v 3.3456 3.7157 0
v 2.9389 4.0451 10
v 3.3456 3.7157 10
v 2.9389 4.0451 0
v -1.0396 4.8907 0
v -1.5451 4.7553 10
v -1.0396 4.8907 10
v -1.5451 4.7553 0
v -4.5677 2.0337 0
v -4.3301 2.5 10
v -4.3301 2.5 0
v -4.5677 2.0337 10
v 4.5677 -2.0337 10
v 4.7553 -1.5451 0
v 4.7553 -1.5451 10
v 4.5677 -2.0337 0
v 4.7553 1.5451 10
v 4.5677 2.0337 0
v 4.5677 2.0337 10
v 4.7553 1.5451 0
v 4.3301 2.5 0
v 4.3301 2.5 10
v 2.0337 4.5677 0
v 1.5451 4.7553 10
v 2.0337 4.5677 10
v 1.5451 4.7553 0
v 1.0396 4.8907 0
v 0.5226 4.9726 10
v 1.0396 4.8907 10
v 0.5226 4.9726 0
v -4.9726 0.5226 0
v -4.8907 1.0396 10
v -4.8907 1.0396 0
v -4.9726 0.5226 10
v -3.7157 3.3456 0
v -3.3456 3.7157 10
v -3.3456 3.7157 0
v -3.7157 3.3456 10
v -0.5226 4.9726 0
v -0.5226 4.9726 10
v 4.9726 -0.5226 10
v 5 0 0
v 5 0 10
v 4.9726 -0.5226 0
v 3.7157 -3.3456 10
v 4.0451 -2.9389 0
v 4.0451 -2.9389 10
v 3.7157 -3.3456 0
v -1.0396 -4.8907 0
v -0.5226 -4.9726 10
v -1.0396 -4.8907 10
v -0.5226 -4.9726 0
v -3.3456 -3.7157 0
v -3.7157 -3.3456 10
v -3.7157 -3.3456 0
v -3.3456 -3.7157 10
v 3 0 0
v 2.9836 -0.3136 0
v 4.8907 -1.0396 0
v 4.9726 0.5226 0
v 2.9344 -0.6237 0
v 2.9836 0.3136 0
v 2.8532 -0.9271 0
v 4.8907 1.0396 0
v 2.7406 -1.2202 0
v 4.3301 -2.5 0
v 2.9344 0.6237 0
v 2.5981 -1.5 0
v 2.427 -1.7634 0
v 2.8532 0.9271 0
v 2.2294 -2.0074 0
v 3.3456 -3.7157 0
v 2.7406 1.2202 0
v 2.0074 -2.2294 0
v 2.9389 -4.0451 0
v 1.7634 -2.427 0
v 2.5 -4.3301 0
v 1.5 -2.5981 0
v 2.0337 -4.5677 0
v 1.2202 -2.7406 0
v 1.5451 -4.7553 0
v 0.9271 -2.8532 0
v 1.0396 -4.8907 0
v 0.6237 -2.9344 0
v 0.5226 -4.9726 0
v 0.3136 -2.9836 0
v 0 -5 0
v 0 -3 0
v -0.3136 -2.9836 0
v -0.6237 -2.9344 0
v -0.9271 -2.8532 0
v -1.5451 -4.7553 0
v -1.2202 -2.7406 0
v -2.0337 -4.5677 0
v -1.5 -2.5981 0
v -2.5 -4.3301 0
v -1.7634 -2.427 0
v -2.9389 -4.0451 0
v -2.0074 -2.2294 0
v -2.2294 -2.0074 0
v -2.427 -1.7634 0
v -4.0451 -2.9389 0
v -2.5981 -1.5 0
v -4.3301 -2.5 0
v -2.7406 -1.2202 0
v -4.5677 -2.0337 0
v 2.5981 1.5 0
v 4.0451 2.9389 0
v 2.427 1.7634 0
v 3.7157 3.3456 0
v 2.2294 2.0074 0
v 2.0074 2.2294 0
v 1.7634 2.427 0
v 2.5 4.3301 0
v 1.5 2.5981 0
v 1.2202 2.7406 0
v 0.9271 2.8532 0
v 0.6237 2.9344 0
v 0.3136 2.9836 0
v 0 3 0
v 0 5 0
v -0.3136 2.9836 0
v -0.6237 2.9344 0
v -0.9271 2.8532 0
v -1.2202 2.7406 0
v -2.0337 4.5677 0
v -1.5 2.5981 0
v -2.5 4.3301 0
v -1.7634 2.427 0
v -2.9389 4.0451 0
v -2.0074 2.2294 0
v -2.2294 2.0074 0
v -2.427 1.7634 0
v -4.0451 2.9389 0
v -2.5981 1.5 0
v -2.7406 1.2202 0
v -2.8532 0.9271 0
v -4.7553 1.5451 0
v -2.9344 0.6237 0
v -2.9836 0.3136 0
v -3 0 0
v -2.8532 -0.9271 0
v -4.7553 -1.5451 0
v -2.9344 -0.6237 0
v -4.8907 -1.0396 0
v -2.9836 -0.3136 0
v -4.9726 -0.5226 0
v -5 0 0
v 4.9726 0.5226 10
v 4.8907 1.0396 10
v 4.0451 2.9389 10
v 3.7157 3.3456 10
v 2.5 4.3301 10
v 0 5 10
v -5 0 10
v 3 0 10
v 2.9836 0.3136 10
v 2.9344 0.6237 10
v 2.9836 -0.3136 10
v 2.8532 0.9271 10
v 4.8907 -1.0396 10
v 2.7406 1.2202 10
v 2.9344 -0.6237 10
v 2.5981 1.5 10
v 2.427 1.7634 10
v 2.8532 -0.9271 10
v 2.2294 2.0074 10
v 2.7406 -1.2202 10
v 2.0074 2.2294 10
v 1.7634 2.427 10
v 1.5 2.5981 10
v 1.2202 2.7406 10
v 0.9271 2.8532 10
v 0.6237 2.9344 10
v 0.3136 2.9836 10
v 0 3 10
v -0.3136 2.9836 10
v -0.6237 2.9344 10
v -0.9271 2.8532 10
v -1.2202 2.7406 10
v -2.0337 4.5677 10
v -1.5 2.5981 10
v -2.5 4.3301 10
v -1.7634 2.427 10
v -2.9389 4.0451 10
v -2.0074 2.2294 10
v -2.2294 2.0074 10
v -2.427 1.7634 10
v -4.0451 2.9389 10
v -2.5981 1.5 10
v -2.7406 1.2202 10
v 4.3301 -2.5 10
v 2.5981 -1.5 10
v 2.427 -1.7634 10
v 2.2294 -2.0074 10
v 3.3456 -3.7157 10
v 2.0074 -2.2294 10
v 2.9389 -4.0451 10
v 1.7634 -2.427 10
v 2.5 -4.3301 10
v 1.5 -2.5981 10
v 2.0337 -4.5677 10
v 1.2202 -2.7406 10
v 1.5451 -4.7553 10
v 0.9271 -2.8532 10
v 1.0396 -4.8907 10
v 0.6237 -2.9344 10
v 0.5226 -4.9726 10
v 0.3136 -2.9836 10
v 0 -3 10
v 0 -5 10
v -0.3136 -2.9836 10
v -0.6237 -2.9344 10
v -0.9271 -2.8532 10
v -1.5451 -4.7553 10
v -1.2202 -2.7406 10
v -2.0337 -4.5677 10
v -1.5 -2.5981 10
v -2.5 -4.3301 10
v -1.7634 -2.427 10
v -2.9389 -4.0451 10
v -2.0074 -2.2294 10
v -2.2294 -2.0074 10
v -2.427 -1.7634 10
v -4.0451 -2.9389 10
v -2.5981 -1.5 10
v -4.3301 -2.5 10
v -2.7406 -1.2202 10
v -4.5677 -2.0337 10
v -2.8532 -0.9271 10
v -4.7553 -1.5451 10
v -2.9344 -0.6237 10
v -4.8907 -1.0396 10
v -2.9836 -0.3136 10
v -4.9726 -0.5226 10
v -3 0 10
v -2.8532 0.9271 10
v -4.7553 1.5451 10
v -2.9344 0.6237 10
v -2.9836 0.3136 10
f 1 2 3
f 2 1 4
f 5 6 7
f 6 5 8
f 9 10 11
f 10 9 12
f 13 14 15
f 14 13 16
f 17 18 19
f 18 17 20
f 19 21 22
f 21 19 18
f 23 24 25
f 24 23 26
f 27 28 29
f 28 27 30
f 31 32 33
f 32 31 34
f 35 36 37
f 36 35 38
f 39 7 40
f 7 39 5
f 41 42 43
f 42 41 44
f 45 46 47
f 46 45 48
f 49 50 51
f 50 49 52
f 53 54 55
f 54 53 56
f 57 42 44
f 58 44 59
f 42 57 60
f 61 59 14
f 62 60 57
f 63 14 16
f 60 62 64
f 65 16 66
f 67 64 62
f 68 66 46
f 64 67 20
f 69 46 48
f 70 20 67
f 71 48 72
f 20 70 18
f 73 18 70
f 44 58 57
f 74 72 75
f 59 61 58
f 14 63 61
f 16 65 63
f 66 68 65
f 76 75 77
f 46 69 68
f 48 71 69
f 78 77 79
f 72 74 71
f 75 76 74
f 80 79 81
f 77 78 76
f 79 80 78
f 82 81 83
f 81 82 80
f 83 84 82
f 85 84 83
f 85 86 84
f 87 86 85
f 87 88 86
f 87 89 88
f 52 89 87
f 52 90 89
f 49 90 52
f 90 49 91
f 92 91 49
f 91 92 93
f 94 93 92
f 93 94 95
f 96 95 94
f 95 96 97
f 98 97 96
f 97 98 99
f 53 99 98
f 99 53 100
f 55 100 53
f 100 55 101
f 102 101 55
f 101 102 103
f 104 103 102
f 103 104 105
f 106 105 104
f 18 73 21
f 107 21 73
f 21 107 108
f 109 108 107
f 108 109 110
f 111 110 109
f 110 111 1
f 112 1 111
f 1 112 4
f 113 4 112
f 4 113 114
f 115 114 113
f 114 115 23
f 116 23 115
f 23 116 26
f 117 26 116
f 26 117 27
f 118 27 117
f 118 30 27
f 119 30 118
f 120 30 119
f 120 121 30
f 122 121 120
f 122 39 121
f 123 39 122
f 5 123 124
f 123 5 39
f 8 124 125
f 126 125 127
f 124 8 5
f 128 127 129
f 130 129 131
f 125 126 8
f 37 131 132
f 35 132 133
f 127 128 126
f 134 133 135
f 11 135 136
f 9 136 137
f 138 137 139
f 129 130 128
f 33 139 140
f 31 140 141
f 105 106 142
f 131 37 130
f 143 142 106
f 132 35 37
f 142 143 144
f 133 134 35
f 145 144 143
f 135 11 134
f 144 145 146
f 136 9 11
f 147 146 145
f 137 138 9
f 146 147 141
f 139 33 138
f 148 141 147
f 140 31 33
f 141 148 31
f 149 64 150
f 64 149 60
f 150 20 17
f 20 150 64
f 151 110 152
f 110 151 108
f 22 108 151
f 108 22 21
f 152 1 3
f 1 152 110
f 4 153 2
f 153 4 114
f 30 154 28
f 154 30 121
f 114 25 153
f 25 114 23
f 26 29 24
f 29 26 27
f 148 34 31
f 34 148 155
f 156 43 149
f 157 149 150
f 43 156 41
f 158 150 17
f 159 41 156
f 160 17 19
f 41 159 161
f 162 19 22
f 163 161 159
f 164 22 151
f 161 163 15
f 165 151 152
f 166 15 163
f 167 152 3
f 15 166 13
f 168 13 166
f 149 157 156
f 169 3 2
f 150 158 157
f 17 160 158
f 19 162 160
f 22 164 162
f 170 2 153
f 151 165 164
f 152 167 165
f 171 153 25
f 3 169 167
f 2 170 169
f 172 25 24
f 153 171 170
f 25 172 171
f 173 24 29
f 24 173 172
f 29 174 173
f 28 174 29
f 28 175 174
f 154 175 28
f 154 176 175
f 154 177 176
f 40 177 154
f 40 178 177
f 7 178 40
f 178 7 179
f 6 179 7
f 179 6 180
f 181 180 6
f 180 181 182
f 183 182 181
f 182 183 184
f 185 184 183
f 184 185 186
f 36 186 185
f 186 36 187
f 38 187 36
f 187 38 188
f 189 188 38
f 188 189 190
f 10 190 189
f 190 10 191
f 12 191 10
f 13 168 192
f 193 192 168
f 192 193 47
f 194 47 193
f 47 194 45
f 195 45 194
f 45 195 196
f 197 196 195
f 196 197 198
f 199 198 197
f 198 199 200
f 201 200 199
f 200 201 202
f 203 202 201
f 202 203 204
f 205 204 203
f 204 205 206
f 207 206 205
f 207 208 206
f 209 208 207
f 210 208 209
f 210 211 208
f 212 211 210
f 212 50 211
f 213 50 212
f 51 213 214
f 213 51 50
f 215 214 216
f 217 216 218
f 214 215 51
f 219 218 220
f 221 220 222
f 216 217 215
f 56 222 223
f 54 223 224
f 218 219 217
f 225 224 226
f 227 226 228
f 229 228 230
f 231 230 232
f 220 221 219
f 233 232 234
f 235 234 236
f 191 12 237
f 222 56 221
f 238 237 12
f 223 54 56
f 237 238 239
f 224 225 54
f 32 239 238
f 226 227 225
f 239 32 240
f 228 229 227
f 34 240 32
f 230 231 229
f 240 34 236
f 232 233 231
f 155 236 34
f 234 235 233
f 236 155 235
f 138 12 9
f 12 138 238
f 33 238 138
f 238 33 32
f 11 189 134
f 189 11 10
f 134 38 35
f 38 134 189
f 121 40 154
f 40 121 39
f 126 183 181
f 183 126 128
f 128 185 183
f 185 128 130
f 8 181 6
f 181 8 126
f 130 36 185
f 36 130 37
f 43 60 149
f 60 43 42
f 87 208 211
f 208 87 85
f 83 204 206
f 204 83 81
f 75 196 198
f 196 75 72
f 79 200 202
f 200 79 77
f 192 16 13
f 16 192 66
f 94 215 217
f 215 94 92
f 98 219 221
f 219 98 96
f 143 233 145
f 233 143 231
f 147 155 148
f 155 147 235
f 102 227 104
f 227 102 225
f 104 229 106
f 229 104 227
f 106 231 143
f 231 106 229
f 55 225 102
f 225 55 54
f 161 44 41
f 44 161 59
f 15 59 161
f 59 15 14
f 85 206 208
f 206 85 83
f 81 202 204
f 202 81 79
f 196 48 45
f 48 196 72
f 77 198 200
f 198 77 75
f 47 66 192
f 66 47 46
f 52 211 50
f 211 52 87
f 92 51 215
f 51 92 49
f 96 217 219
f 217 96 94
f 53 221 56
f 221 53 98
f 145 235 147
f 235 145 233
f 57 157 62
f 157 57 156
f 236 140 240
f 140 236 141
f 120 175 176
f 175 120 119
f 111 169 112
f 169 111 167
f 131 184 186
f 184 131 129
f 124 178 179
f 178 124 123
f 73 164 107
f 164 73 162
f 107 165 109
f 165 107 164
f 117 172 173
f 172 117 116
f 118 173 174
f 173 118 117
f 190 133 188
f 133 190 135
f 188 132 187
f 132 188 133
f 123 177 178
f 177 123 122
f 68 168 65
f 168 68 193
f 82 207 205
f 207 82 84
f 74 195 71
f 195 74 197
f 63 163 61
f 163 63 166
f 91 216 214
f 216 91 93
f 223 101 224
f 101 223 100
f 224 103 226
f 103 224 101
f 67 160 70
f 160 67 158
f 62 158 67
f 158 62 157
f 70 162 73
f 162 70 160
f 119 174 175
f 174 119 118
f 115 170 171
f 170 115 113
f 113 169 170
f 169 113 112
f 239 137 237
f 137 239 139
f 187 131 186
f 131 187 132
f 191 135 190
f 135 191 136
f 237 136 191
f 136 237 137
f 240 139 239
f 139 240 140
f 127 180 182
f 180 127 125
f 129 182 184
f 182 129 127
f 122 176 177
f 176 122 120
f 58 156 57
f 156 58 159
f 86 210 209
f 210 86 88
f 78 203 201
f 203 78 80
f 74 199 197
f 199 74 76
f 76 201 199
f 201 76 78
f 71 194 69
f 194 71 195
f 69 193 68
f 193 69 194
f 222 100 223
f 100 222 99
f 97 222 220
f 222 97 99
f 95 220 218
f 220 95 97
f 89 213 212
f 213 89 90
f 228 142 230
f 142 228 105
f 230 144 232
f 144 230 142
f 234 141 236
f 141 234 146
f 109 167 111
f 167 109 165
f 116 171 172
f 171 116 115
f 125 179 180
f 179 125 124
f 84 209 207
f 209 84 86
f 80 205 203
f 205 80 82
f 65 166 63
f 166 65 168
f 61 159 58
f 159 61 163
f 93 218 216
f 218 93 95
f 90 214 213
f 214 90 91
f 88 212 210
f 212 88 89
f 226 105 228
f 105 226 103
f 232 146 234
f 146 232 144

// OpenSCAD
include <ISOThreadUM2.scad>;

module shaft_spacer(length=10){
  difference(){
    translate([0, 0, 0]) cylinder(r=5, h=length, center=false, $fn=60);
    translate([0, 0, -2]) cylinder(r=3.0, h=length+10, center=false, $fn=60);
  }
}

shaft_spacer(10);
//translate([-10, 0, 0]) rotate([0, 90, 0]) hex_bolt(5,25);
